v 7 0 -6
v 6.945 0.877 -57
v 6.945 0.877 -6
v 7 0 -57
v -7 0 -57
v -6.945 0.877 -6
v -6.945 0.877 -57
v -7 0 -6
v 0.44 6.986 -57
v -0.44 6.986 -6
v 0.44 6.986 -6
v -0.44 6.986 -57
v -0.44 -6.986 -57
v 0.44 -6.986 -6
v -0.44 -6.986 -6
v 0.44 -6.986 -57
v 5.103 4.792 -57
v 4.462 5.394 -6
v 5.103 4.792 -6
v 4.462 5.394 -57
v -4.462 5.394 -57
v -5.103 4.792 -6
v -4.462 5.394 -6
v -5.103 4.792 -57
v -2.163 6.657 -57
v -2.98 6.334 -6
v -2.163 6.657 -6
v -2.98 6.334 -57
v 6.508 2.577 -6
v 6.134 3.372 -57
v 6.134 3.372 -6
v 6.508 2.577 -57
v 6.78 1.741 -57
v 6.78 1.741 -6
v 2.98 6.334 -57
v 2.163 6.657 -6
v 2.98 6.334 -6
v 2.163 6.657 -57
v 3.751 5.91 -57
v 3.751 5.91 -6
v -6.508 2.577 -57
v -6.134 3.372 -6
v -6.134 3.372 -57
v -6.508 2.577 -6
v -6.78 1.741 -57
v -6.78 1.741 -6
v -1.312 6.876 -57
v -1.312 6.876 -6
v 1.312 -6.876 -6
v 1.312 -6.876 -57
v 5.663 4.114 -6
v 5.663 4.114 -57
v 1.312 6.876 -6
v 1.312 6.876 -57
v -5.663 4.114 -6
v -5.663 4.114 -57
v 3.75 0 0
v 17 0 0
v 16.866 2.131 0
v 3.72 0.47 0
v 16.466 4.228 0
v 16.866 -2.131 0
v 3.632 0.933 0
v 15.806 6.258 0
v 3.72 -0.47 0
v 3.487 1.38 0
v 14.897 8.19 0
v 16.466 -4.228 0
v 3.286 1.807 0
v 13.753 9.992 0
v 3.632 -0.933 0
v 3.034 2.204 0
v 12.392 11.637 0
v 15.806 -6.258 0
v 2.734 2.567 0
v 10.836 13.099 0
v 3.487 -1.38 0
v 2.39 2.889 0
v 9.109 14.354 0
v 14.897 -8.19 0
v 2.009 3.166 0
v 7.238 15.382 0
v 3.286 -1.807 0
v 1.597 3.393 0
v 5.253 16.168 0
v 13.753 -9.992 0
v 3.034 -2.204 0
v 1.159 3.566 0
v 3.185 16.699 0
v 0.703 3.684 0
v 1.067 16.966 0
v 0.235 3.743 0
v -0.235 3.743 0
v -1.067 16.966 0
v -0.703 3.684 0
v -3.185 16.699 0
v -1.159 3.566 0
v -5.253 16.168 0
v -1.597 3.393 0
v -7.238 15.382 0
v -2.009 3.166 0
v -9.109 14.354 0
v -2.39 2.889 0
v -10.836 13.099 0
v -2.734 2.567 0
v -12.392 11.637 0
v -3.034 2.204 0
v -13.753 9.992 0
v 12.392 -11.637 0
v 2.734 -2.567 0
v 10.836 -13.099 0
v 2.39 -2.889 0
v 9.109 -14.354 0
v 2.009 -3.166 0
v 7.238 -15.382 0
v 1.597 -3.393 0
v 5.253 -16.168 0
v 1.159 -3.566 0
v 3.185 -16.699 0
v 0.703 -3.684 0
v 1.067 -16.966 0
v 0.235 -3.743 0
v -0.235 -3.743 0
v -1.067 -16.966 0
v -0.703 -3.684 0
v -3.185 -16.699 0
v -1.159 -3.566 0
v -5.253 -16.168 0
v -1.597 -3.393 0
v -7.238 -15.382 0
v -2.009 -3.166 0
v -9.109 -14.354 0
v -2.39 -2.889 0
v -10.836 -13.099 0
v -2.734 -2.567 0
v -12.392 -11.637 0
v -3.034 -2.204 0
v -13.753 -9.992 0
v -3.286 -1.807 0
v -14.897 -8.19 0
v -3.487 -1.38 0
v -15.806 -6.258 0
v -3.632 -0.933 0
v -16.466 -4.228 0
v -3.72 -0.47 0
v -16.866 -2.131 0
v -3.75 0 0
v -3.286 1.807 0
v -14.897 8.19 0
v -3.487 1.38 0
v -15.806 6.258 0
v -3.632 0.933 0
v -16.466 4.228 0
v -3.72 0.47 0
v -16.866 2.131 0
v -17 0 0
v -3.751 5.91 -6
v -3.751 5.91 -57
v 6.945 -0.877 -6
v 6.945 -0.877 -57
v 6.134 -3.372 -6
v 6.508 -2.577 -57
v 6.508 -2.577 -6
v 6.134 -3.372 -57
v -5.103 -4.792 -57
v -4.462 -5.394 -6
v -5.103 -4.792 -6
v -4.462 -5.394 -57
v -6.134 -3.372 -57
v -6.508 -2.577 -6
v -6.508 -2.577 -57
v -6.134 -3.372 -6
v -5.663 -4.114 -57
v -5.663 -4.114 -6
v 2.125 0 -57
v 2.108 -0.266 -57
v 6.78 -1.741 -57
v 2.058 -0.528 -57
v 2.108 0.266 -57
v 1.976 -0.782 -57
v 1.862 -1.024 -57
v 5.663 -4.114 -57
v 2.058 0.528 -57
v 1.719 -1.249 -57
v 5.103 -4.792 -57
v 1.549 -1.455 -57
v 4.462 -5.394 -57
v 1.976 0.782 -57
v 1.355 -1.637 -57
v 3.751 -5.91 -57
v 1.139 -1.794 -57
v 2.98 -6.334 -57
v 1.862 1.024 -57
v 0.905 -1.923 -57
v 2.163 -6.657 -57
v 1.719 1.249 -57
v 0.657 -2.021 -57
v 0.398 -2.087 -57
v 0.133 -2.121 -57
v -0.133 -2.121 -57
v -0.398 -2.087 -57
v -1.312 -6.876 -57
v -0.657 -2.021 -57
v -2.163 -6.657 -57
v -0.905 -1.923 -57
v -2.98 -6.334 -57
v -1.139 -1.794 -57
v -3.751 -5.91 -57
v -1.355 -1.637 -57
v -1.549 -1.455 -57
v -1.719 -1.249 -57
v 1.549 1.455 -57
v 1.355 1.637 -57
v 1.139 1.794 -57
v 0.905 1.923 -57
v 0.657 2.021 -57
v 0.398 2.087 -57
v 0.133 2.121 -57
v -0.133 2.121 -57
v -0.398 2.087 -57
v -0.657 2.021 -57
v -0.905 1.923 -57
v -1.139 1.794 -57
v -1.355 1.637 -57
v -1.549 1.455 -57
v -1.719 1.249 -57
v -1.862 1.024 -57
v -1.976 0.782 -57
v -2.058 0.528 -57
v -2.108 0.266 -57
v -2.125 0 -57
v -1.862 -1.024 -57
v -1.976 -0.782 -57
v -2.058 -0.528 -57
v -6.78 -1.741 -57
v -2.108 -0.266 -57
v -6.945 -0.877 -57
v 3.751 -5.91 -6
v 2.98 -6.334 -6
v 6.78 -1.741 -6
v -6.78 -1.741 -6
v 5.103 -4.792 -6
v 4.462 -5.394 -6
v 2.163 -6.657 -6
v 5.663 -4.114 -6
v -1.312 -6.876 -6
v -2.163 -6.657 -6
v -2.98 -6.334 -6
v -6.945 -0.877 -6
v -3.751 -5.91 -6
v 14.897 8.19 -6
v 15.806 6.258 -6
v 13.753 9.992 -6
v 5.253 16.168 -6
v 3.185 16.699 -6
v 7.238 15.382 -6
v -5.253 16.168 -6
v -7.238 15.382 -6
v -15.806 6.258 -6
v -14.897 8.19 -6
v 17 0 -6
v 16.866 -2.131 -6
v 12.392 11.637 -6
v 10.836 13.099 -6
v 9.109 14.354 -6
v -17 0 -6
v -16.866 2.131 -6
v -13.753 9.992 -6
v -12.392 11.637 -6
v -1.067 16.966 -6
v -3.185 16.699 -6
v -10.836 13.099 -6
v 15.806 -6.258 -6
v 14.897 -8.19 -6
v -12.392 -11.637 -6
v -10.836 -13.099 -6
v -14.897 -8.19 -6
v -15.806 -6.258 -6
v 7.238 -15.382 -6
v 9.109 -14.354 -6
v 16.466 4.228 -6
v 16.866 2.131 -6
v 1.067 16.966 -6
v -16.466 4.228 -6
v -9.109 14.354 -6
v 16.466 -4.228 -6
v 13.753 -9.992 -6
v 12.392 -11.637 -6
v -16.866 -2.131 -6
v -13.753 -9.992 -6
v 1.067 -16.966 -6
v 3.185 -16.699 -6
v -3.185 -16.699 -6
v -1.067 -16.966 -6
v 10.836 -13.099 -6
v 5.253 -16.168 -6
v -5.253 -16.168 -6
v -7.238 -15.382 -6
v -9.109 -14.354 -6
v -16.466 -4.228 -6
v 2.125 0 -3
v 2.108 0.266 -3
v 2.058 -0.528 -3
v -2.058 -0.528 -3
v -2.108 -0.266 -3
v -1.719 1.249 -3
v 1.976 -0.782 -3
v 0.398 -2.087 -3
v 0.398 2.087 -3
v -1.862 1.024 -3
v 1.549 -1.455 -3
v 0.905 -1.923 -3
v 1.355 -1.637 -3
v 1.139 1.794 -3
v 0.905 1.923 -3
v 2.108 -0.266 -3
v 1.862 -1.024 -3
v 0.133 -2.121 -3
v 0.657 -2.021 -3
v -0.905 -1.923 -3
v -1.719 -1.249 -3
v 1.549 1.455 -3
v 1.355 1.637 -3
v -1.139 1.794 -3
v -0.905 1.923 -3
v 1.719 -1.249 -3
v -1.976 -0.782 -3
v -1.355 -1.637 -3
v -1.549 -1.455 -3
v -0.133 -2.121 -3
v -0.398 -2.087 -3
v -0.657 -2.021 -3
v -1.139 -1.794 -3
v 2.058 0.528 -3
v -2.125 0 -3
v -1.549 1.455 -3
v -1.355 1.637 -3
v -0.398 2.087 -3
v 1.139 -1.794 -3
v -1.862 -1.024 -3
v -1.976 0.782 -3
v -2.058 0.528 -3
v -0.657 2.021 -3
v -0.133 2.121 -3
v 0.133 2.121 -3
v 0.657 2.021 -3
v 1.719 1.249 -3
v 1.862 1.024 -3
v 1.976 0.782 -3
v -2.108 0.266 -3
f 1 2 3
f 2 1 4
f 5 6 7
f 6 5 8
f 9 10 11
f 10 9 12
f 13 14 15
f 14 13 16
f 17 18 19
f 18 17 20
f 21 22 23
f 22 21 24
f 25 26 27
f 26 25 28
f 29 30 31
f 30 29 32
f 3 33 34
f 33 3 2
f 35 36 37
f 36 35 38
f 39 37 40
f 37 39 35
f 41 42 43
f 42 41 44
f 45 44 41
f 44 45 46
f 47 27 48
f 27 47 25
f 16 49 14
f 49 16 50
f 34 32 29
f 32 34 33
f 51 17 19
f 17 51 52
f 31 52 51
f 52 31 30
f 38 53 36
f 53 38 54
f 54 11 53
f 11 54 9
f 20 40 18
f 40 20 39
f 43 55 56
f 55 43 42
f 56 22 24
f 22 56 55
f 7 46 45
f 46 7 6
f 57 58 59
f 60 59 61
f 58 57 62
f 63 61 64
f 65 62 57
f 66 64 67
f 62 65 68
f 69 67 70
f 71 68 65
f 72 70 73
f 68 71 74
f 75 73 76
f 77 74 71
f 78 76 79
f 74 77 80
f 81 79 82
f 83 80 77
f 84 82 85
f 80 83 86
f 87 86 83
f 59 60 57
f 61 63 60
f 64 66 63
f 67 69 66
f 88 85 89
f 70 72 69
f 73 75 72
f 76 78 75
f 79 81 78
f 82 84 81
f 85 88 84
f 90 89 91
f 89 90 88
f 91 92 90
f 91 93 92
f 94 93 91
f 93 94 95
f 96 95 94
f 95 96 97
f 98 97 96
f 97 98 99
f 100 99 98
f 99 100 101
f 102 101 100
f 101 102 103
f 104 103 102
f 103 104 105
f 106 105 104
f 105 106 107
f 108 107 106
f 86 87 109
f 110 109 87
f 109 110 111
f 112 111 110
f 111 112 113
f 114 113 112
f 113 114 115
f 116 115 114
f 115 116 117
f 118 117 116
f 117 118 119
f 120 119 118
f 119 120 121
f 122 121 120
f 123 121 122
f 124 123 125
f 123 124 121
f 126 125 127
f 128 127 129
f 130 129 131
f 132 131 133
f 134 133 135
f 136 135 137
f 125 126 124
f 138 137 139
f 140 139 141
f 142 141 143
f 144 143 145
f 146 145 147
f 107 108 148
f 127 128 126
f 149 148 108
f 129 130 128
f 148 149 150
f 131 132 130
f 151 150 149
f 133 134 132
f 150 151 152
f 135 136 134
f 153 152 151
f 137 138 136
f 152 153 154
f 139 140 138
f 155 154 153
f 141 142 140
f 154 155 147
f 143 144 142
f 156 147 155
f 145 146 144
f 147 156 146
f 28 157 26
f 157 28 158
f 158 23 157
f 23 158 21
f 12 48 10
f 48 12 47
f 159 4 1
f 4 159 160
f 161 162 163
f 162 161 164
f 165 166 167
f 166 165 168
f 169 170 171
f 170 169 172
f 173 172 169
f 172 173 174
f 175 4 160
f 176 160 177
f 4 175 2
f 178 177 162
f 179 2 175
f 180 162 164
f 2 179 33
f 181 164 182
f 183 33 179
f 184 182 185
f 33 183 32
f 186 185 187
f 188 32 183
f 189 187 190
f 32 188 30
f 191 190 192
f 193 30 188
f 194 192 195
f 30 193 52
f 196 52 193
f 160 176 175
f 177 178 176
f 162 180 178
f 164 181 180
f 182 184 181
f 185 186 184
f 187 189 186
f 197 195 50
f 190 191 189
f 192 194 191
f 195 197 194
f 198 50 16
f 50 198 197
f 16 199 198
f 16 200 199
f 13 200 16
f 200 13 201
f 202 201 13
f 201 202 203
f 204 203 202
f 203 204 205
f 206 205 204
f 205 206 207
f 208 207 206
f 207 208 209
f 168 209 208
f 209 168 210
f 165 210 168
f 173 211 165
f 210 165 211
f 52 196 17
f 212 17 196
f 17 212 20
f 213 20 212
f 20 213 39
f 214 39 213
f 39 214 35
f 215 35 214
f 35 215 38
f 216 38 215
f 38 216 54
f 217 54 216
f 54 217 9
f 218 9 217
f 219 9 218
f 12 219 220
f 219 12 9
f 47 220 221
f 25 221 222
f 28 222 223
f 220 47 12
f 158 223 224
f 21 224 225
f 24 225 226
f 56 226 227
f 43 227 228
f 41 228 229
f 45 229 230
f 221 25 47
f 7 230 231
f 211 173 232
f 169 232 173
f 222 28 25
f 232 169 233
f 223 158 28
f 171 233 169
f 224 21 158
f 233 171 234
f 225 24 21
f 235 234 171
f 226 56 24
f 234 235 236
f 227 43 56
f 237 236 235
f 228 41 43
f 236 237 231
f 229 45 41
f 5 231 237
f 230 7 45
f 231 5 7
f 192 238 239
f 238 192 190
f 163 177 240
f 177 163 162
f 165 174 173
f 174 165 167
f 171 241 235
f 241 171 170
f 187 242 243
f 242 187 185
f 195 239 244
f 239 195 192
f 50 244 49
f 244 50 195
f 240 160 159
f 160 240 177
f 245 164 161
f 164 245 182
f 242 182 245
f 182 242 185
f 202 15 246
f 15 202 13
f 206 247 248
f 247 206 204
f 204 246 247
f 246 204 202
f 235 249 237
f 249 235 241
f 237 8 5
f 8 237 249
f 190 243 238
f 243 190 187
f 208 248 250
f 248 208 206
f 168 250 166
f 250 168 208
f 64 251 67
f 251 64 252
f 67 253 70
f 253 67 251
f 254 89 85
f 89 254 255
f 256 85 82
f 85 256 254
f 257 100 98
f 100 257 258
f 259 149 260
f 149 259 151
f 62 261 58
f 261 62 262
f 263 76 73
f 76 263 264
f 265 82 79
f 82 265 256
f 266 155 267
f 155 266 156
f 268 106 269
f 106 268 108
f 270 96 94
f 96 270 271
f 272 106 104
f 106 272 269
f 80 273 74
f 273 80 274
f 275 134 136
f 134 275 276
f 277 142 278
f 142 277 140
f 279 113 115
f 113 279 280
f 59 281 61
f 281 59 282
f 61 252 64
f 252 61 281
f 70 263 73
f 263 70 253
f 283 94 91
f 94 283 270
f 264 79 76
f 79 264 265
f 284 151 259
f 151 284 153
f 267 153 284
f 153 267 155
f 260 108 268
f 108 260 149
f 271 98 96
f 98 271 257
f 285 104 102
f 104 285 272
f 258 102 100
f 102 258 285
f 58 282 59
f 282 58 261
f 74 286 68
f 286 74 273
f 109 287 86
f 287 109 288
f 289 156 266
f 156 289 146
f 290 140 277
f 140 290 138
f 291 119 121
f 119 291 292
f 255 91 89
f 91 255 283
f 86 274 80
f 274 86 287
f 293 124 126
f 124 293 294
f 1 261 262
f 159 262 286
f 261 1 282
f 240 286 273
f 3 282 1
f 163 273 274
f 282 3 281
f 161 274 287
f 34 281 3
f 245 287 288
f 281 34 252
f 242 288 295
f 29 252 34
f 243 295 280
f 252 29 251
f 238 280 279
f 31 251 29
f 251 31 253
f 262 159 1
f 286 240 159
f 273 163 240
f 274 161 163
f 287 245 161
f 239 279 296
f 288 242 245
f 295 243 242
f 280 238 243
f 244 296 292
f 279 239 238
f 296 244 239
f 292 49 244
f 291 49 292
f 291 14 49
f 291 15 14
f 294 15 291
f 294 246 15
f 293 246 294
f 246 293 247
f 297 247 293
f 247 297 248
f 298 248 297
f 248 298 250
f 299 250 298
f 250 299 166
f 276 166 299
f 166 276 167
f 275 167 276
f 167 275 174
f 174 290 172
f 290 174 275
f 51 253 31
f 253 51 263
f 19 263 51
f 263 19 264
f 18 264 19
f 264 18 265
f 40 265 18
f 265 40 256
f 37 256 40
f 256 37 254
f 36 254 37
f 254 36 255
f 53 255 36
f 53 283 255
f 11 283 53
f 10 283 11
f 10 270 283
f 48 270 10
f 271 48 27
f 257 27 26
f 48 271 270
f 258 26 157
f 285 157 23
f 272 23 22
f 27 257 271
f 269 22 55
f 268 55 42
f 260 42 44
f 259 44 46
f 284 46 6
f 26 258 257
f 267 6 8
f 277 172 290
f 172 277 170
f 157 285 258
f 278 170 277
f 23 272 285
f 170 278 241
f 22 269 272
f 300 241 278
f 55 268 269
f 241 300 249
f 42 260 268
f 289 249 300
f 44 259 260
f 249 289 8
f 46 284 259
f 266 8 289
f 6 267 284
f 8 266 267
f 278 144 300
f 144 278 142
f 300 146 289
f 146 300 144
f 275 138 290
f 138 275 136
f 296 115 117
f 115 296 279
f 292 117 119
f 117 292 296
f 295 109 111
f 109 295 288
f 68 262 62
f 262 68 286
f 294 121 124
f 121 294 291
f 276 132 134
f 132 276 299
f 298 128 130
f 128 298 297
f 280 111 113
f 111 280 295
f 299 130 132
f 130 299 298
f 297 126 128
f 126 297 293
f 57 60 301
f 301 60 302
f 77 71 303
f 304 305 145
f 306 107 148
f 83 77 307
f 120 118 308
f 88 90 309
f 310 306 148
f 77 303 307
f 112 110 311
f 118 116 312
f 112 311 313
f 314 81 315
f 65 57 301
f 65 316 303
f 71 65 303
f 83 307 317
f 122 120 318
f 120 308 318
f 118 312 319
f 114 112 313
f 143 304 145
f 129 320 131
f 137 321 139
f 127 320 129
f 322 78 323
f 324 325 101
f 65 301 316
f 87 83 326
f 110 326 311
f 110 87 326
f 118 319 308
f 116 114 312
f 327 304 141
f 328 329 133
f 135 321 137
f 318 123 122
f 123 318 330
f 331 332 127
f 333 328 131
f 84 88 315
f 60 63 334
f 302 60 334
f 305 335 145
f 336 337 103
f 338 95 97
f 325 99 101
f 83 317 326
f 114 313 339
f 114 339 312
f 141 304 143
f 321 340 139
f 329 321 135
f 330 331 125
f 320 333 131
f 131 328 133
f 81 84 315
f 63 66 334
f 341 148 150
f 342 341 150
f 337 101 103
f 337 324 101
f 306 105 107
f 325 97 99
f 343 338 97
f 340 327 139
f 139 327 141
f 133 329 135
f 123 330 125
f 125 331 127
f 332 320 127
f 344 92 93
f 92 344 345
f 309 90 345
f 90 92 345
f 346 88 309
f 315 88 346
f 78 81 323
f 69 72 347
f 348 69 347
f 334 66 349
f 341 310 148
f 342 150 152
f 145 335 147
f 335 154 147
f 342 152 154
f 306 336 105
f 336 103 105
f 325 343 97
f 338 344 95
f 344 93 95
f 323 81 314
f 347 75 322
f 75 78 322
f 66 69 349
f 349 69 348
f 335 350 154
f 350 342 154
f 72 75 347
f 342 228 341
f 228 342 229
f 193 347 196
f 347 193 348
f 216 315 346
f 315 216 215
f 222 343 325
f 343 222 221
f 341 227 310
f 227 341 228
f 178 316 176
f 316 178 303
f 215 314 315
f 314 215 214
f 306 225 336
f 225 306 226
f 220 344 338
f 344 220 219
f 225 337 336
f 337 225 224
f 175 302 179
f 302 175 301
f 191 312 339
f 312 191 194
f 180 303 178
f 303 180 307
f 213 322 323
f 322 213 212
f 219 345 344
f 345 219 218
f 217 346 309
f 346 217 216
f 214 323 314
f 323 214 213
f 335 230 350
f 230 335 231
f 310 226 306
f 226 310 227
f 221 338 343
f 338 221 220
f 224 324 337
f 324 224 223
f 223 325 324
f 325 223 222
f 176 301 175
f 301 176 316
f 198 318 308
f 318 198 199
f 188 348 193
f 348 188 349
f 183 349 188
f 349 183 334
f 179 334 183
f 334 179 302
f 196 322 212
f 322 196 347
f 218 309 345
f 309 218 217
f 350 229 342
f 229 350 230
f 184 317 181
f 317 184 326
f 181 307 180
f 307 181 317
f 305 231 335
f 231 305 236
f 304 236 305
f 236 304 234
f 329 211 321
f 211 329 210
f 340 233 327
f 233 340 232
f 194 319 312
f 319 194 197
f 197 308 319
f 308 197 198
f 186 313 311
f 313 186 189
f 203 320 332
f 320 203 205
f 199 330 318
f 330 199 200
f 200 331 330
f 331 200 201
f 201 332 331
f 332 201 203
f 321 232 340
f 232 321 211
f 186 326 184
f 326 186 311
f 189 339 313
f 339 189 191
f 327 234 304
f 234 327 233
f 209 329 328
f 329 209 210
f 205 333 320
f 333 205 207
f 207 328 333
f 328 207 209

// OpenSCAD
$fn = 50;


difference() {
	union() {
		translate(v = [0, 0, -57.0000000000]) {
			cylinder(h = 57, r = 7.0000000000);
		}
		translate(v = [0, 0, -6.0000000000]) {
			cylinder(h = 6, r = 17.0000000000);
		}
	}
	union() {
		translate(v = [0, 0, 0]) {
			rotate(a = [0, 0, 0]) {
				difference() {
					union() {
						#translate(v = [0, 0, -57.0000000000]) {
							cylinder(h = 57, r = 2.0000000000);
						}
						#translate(v = [0, 0, -3]) {
							cylinder(h = 3, r1 = 2.1250000000, r2 = 3.7500000000);
						}
						#translate(v = [0, 0, -57.0000000000]) {
							cylinder(h = 57, r = 2.1250000000);
						}
						#translate(v = [0, 0, -57.0000000000]) {
							cylinder(h = 57, r = 2.0000000000);
						}
					}
					union();
				}
			}
		}
	}
}
